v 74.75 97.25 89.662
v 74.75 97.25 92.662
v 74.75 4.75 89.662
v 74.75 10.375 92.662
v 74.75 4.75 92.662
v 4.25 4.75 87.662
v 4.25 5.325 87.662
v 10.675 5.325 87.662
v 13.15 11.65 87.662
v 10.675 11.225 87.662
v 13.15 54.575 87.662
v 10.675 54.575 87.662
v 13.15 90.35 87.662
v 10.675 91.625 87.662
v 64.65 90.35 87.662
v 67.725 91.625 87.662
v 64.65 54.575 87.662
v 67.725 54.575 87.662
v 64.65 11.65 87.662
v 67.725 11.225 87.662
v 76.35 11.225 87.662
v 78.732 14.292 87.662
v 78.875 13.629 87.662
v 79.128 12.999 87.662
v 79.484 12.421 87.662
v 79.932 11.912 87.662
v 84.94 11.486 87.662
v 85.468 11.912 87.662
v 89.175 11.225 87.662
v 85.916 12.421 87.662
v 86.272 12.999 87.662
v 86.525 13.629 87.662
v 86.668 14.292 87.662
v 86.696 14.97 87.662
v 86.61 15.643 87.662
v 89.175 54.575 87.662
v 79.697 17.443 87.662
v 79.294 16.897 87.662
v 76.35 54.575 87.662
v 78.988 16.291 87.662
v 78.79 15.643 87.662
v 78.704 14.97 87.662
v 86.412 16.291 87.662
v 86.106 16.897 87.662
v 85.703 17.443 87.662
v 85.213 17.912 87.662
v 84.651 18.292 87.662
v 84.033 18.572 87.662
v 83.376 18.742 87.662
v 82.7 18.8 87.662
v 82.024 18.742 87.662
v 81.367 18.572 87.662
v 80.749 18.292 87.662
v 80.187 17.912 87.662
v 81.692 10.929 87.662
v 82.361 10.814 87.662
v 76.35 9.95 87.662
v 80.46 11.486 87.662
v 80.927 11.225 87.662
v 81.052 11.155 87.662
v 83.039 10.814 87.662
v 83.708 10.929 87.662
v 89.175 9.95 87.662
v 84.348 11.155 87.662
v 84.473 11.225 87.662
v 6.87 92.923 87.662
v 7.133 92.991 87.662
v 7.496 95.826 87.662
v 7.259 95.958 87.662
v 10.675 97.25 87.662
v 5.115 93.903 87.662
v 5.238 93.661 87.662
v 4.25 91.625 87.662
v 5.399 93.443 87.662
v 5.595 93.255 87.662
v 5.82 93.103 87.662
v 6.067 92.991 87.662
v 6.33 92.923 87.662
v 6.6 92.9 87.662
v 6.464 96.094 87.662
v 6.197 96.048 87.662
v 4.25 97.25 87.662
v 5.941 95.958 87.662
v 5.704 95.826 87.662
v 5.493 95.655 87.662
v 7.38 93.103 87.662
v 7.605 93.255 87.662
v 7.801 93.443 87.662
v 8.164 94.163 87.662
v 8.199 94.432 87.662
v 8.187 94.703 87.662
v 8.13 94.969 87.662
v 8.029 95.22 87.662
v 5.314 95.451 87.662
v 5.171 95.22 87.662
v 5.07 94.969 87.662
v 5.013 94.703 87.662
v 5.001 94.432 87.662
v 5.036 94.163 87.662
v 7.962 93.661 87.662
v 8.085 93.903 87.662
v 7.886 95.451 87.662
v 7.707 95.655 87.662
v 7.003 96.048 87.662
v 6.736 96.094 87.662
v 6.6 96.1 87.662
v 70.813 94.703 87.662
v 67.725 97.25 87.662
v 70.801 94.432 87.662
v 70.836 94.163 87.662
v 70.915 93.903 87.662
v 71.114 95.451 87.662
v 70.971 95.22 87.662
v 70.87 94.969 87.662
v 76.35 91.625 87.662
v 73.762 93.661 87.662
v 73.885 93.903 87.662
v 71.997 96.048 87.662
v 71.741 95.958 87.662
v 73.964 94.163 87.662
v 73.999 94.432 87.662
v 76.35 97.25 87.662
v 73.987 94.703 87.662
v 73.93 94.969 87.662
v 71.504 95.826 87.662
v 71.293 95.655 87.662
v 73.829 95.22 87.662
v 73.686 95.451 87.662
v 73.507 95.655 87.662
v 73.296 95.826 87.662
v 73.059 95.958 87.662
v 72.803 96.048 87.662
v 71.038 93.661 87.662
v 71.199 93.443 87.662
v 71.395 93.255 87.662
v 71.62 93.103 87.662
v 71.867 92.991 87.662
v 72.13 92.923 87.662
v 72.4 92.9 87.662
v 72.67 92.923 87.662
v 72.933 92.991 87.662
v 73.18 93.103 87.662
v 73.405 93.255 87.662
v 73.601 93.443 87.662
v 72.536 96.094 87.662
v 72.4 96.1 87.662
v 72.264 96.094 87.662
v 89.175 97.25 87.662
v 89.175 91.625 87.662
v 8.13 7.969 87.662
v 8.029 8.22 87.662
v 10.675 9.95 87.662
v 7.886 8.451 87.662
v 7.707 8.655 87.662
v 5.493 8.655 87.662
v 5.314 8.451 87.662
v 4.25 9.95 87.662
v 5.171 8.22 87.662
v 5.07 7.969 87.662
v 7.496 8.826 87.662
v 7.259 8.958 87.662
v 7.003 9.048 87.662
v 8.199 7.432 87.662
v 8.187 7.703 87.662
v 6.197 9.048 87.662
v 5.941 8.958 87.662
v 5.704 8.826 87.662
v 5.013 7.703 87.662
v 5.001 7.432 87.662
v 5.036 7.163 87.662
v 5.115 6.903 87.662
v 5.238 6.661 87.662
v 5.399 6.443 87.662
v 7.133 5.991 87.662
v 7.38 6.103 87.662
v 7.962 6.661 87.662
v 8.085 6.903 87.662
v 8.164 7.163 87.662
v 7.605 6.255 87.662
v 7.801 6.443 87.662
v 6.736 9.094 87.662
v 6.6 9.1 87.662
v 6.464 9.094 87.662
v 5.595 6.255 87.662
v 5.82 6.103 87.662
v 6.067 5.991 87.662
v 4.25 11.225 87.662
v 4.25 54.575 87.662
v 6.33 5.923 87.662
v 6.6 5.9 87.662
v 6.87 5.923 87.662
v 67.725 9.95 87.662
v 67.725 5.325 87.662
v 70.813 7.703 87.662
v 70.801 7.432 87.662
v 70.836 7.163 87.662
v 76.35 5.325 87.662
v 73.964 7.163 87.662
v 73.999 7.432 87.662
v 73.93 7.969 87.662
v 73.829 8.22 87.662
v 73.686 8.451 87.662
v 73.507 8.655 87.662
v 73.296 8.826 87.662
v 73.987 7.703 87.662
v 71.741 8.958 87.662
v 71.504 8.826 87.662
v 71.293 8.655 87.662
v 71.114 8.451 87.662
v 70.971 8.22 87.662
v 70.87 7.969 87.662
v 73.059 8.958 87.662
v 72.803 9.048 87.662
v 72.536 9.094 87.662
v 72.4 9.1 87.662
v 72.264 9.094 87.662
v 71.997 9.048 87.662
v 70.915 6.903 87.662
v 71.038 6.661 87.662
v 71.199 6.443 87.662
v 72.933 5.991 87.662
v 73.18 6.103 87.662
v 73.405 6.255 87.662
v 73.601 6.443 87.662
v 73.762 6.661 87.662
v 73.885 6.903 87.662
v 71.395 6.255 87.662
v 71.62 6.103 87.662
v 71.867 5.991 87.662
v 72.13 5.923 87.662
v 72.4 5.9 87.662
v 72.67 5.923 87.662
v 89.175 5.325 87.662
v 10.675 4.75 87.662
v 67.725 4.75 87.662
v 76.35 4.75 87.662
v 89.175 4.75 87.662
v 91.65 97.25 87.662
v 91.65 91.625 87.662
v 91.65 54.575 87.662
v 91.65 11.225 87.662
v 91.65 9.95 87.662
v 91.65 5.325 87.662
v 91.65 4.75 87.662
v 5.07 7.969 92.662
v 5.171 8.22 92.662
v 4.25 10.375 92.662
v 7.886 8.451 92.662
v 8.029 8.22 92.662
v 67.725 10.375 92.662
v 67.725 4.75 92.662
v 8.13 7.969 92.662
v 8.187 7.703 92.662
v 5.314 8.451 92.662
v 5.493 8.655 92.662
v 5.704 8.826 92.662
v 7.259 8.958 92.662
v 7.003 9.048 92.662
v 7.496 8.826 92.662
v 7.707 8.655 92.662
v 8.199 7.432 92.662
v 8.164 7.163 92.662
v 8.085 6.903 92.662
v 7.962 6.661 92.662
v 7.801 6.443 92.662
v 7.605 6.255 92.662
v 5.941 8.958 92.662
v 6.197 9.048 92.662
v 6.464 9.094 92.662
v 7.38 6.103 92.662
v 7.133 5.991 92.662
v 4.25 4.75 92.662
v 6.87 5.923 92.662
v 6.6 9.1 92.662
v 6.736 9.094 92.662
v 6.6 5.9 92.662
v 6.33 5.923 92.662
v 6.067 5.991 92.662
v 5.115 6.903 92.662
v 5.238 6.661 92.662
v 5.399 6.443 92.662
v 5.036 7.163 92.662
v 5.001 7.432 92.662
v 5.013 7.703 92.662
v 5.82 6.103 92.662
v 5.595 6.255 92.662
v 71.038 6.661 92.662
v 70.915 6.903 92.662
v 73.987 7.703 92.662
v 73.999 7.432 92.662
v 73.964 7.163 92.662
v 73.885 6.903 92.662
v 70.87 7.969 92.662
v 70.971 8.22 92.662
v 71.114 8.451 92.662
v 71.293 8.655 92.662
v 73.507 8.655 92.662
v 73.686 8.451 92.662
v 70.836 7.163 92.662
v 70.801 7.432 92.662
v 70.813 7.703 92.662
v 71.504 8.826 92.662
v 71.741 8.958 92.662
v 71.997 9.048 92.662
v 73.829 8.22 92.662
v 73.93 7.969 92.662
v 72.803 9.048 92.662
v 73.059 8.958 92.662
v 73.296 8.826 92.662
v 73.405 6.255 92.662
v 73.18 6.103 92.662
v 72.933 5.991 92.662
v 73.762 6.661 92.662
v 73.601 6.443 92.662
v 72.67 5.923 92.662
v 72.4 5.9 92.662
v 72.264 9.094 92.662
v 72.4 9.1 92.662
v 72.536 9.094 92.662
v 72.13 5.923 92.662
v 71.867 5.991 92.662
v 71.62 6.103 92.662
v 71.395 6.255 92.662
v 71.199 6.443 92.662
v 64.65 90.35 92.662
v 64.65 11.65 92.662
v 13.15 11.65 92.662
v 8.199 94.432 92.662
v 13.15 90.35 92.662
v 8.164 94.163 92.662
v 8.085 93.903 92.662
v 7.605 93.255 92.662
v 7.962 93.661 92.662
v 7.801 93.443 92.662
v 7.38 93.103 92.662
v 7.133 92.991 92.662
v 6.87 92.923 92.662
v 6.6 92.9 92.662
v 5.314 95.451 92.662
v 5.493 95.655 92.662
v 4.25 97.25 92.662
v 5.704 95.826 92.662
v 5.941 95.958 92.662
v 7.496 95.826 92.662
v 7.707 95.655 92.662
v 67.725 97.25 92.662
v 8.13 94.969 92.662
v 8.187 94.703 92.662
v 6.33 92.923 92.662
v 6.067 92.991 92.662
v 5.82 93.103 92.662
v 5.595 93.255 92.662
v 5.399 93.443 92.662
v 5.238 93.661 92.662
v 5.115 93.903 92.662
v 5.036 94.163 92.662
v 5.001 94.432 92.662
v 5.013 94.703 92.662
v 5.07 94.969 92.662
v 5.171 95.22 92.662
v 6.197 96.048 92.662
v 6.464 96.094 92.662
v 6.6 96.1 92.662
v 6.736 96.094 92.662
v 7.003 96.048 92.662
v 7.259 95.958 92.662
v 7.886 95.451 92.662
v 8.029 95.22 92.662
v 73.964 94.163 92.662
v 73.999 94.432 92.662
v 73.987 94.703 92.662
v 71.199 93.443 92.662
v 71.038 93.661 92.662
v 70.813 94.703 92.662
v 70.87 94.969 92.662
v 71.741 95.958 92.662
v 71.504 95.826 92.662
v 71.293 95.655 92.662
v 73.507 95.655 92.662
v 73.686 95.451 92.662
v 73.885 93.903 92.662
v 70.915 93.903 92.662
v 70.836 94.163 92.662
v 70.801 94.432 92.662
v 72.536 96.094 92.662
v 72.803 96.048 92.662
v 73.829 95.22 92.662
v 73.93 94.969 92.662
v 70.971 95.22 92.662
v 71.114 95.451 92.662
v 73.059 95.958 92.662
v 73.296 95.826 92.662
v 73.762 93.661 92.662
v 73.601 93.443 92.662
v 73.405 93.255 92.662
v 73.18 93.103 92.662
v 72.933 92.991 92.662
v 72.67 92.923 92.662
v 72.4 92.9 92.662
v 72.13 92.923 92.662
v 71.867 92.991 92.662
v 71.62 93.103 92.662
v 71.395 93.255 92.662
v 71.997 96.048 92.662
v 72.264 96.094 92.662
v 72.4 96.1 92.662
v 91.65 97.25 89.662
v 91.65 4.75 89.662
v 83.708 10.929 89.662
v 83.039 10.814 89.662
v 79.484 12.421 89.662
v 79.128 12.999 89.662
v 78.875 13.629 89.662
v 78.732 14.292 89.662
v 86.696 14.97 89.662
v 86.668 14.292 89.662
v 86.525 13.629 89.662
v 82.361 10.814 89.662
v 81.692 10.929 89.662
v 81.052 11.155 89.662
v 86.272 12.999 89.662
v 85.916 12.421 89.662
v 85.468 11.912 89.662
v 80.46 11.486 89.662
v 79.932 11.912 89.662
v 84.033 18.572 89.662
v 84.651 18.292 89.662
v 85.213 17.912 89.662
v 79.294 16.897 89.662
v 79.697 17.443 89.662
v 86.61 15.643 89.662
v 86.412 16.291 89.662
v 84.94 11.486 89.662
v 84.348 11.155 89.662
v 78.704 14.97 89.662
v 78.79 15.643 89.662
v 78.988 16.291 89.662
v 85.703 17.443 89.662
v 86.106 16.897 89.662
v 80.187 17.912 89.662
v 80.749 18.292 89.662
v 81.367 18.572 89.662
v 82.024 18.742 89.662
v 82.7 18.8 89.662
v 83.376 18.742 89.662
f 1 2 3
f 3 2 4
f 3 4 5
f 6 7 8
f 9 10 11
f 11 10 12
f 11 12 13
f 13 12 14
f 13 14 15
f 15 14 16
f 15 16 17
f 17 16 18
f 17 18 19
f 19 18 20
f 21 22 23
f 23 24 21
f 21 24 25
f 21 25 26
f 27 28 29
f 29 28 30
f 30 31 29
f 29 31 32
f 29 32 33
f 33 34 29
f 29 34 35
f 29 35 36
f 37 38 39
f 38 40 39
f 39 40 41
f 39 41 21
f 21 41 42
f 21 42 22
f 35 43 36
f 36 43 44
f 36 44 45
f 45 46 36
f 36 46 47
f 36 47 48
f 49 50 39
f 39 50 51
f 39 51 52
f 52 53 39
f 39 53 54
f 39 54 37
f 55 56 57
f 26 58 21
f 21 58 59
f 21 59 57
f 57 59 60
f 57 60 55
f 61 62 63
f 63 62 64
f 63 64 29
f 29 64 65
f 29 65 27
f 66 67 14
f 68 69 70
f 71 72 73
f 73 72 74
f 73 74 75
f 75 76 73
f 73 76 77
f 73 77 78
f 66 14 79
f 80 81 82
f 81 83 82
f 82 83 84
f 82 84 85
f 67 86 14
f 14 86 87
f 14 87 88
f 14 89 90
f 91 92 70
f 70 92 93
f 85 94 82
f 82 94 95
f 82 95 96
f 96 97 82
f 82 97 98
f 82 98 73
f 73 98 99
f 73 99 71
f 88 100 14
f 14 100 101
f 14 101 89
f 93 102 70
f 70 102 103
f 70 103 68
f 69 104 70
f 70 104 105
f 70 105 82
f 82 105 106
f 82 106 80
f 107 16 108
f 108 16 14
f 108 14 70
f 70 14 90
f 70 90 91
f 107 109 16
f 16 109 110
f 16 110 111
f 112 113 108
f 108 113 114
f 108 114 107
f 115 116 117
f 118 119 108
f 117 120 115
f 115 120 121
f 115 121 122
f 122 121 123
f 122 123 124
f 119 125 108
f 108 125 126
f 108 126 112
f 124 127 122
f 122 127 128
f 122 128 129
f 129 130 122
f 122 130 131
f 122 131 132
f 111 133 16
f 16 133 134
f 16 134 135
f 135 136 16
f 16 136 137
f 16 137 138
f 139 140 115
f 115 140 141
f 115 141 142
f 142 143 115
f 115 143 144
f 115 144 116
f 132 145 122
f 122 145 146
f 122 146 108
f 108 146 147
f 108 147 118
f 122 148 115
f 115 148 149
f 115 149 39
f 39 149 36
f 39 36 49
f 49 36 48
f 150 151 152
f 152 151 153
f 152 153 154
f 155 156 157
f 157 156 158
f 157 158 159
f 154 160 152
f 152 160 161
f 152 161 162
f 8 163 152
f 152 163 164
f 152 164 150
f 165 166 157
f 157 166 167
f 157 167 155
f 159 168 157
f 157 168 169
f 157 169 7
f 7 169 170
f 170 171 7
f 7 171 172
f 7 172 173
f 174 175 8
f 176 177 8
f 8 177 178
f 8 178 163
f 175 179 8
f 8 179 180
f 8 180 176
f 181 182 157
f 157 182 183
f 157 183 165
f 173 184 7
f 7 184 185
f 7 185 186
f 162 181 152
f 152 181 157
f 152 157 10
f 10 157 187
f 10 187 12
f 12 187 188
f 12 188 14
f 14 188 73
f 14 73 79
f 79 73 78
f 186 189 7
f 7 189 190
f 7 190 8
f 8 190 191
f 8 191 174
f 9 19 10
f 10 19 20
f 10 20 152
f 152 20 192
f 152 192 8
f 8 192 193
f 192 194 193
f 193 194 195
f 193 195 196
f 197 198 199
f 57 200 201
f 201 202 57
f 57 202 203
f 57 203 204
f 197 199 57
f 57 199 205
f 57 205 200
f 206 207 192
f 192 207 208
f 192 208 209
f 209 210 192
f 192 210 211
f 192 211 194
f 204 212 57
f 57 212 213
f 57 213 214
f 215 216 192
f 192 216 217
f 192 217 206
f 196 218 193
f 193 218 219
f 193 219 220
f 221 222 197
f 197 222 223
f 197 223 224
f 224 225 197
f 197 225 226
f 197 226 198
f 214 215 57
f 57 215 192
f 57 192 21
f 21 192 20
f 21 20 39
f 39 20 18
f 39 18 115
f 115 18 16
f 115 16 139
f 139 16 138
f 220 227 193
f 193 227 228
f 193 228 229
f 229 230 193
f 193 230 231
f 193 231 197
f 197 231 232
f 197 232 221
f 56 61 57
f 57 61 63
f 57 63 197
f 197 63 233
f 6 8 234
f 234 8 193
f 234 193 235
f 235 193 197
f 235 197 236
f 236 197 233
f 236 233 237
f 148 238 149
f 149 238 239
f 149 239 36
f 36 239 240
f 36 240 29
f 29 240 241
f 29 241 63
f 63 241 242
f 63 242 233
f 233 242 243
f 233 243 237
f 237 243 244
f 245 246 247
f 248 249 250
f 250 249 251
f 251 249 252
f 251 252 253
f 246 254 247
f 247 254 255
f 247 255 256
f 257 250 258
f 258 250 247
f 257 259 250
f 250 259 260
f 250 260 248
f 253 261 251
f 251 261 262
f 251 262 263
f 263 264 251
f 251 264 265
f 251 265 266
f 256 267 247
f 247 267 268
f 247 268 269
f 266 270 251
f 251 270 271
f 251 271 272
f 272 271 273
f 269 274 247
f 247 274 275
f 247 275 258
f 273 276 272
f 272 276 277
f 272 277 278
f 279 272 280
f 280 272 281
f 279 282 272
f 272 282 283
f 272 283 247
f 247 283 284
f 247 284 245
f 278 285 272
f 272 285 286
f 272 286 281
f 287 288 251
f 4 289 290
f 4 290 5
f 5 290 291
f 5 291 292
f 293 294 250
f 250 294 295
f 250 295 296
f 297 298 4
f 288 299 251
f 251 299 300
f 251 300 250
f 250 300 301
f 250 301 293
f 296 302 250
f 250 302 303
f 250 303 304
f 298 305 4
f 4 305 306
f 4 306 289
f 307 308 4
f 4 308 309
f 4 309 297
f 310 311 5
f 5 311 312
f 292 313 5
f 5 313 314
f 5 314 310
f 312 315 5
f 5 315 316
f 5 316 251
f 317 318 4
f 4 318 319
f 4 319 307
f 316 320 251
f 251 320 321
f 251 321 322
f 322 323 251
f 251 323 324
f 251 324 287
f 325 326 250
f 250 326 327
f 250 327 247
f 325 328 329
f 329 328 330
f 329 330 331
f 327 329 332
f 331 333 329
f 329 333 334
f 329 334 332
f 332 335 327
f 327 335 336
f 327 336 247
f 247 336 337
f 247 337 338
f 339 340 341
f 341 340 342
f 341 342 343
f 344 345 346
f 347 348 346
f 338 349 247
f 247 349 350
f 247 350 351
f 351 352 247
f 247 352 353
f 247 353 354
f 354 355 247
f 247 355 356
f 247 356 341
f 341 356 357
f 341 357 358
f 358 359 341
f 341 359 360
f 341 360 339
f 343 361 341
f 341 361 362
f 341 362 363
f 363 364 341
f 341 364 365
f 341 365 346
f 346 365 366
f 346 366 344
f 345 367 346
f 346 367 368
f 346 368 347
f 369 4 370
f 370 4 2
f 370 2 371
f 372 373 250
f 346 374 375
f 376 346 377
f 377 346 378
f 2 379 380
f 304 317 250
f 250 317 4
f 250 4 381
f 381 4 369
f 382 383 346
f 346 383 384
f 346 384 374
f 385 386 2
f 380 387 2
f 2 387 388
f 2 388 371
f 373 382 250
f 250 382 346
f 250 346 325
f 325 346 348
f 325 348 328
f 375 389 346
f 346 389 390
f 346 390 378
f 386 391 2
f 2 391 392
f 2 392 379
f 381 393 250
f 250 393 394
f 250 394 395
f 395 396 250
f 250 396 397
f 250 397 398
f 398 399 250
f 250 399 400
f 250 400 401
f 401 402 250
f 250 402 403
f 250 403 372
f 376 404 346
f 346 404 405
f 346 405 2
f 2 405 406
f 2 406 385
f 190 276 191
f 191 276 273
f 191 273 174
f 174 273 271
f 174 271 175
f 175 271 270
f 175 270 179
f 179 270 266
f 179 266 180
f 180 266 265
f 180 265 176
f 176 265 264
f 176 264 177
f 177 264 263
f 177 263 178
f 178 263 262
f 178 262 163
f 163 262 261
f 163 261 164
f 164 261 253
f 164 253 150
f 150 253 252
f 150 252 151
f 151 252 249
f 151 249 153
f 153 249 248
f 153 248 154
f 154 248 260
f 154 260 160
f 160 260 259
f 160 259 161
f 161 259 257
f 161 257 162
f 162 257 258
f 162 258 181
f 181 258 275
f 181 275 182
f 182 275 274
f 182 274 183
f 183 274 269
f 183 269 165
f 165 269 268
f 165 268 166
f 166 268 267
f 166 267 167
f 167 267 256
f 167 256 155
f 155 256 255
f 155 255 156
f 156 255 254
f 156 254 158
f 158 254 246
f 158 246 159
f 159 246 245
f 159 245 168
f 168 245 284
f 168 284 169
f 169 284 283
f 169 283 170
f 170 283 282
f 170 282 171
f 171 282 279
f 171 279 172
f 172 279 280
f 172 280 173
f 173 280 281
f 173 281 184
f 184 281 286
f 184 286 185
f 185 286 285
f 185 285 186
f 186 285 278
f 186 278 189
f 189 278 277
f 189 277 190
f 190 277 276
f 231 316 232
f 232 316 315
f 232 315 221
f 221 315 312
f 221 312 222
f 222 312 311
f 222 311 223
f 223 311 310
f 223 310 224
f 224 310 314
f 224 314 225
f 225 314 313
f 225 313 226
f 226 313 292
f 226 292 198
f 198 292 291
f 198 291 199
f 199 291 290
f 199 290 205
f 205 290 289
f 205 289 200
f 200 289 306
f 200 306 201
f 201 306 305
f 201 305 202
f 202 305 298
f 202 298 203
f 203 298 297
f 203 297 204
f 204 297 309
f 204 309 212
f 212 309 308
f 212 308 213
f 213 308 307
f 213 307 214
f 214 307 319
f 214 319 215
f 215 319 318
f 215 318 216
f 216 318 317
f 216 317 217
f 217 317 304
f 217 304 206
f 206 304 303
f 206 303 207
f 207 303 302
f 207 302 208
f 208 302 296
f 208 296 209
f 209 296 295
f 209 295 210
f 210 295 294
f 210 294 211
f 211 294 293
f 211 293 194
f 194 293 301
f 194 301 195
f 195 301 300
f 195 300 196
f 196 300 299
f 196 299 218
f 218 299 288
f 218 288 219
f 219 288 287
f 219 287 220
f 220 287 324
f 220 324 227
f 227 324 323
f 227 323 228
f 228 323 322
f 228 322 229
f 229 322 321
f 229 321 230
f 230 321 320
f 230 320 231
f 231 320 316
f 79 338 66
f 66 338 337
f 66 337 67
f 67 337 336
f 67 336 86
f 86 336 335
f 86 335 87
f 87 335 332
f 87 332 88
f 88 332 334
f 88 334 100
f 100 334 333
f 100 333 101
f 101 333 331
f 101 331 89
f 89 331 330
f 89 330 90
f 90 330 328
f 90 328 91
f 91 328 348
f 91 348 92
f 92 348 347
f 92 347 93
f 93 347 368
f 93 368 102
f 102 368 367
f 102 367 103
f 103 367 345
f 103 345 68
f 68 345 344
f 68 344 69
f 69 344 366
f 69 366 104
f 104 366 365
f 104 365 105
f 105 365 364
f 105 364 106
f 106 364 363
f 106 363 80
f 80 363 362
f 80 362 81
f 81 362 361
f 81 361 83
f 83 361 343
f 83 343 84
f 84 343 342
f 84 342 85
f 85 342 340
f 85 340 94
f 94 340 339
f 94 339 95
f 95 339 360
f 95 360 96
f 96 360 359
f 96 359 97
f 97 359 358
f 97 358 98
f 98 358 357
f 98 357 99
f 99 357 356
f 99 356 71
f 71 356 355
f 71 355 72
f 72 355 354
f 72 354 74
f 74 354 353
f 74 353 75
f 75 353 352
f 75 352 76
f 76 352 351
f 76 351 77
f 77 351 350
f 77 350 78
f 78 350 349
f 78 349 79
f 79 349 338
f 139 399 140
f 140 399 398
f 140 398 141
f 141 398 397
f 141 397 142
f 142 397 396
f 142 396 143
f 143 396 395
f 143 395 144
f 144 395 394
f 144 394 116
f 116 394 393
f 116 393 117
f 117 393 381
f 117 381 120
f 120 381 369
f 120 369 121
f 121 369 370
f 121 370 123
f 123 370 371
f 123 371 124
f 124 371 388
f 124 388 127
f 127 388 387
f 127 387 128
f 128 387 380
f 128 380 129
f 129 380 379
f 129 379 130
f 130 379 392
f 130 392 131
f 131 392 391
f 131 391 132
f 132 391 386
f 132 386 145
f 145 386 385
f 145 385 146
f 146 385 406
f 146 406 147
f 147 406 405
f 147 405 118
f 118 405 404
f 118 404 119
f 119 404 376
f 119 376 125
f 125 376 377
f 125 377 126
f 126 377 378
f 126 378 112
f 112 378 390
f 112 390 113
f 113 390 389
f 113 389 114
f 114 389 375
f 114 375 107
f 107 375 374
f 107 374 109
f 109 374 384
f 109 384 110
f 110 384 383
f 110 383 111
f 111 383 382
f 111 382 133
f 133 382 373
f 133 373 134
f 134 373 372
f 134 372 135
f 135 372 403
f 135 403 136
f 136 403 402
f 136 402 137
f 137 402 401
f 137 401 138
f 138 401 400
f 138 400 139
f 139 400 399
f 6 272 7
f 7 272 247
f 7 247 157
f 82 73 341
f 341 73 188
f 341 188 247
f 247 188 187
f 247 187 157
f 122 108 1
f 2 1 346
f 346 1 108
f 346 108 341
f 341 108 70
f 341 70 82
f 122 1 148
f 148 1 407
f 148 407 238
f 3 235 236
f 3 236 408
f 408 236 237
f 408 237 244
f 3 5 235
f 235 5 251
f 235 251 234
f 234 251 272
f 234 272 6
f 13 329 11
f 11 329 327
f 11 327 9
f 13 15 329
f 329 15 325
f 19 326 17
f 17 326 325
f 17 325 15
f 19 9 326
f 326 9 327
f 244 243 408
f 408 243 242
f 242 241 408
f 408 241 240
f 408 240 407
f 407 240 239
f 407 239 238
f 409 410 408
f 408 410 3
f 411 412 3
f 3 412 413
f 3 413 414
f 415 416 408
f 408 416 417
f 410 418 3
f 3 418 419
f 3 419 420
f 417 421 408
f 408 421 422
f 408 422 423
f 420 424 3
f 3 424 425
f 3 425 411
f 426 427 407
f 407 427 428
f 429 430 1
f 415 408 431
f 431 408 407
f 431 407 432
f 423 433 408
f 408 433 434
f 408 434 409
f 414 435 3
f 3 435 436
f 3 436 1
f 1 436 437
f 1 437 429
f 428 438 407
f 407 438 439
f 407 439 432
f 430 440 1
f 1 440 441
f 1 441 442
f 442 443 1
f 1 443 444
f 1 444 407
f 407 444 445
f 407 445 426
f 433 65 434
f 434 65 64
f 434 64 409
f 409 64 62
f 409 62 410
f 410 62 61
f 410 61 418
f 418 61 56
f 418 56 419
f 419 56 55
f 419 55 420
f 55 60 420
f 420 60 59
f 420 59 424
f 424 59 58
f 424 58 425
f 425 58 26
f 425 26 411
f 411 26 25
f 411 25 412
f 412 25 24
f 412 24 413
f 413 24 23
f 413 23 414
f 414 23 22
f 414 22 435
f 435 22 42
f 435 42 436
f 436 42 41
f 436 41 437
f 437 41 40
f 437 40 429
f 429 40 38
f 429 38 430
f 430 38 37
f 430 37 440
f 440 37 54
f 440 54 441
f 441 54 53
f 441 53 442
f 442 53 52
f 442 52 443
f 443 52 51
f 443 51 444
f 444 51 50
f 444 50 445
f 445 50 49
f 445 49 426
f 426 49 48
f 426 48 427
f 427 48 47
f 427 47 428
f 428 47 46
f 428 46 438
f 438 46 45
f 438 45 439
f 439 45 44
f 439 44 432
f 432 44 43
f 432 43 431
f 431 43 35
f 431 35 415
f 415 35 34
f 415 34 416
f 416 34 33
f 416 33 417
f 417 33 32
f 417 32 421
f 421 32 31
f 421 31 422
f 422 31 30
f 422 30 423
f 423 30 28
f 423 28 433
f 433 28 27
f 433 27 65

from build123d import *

# Parameters (mm, degrees)
SKETCH_1_W          = 71
SKETCH_1_H          = 93
SKETCH_1_R          = 1.6
SKETCH_1_W_2        = 51
SKETCH_1_H_2        = 78.2
EXTRUDE_1_DEPTH     = 5
SKETCH_2_W          = 71
SKETCH_2_H          = 93
SKETCH_2_W_2        = 70.5
SKETCH_2_H_2        = 92.5
CUT_EXTRUDE_1_DEPTH = 6
SKETCH_3_W          = 51.5
SKETCH_3_H          = 78.7
SKETCH_3_W_2        = 51
SKETCH_3_H_2        = 78.2
CUT_EXTRUDE_2_DEPTH = 6
SKETCH_5_W          = 27
SKETCH_5_H          = 92.5
SKETCH_5_R          = 1.6
EXTRUDE_3_DEPTH     = 2
SKETCH_7_R          = 4
CUT_EXTRUDE_3_DEPTH = 6


with BuildPart() as part:
    # Эскиз1 → Бобышка-Вытянуть1 (new body)
    with BuildSketch(Plane(origin=(0, 0, 92.662297423), x_dir=(-1, 0, 0), z_dir=(0, 0, -1))):
        with Locations((-39.5, 51)):
            Rectangle(SKETCH_1_W, SKETCH_1_H)
        with Locations((-6.6, 7.5)):
            Circle(SKETCH_1_R, mode=Mode.SUBTRACT)
        with Locations((-72.4, 7.5)):
            Circle(SKETCH_1_R, mode=Mode.SUBTRACT)
        with Locations((-6.6, 94.5)):
            Circle(SKETCH_1_R, mode=Mode.SUBTRACT)
        with Locations((-72.4, 94.5)):
            Circle(SKETCH_1_R, mode=Mode.SUBTRACT)
        with Locations((-38.9, 51)):
            Rectangle(SKETCH_1_W_2, SKETCH_1_H_2, mode=Mode.SUBTRACT)
    extrude(amount=EXTRUDE_1_DEPTH)

    # Эскиз2 → Вырез-Вытянуть1 (cut, through all)
    with BuildSketch(Plane.XY.offset(92.662297423)):
        with Locations((39.5, 51)):
            Rectangle(SKETCH_2_W, SKETCH_2_H)
        with Locations((39.5, 51)):
            Rectangle(SKETCH_2_W_2, SKETCH_2_H_2, mode=Mode.SUBTRACT)
    extrude(amount=-CUT_EXTRUDE_1_DEPTH, mode=Mode.SUBTRACT)

    # Эскиз3 → Вырез-Вытянуть2 (cut, through all)
    with BuildSketch(Plane.XY.offset(92.662297423)):
        with Locations((38.9, 51)):
            Rectangle(SKETCH_3_W, SKETCH_3_H)
        with Locations((38.9, 51)):
            Rectangle(SKETCH_3_W_2, SKETCH_3_H_2, mode=Mode.SUBTRACT)
    extrude(amount=-CUT_EXTRUDE_2_DEPTH, mode=Mode.SUBTRACT)

    # Эскиз5 → Бобышка-Вытянуть3 (add)
    with BuildSketch(Plane(origin=(0, 0, 87.662297423), x_dir=(-1, 0, 0), z_dir=(0, 0, -1))):
        with Locations((-78.15, 51)):
            Rectangle(SKETCH_5_W, SKETCH_5_H)
        with Locations((-72.4, 94.5)):
            Circle(SKETCH_5_R, mode=Mode.SUBTRACT)
        with Locations((-72.4, 7.5)):
            Circle(SKETCH_5_R, mode=Mode.SUBTRACT)
    extrude(amount=-EXTRUDE_3_DEPTH)

    # Эскиз7 → Вырез-Вытянуть3 (cut, through all)
    with BuildSketch(Plane(origin=(0, 0, 87.662297423), x_dir=(-1, 0, 0), z_dir=(0, 0, -1))):
        with Locations((-82.7, 14.8)):
            Circle(SKETCH_7_R)
    extrude(amount=-CUT_EXTRUDE_3_DEPTH, mode=Mode.SUBTRACT)


solid = part.part
